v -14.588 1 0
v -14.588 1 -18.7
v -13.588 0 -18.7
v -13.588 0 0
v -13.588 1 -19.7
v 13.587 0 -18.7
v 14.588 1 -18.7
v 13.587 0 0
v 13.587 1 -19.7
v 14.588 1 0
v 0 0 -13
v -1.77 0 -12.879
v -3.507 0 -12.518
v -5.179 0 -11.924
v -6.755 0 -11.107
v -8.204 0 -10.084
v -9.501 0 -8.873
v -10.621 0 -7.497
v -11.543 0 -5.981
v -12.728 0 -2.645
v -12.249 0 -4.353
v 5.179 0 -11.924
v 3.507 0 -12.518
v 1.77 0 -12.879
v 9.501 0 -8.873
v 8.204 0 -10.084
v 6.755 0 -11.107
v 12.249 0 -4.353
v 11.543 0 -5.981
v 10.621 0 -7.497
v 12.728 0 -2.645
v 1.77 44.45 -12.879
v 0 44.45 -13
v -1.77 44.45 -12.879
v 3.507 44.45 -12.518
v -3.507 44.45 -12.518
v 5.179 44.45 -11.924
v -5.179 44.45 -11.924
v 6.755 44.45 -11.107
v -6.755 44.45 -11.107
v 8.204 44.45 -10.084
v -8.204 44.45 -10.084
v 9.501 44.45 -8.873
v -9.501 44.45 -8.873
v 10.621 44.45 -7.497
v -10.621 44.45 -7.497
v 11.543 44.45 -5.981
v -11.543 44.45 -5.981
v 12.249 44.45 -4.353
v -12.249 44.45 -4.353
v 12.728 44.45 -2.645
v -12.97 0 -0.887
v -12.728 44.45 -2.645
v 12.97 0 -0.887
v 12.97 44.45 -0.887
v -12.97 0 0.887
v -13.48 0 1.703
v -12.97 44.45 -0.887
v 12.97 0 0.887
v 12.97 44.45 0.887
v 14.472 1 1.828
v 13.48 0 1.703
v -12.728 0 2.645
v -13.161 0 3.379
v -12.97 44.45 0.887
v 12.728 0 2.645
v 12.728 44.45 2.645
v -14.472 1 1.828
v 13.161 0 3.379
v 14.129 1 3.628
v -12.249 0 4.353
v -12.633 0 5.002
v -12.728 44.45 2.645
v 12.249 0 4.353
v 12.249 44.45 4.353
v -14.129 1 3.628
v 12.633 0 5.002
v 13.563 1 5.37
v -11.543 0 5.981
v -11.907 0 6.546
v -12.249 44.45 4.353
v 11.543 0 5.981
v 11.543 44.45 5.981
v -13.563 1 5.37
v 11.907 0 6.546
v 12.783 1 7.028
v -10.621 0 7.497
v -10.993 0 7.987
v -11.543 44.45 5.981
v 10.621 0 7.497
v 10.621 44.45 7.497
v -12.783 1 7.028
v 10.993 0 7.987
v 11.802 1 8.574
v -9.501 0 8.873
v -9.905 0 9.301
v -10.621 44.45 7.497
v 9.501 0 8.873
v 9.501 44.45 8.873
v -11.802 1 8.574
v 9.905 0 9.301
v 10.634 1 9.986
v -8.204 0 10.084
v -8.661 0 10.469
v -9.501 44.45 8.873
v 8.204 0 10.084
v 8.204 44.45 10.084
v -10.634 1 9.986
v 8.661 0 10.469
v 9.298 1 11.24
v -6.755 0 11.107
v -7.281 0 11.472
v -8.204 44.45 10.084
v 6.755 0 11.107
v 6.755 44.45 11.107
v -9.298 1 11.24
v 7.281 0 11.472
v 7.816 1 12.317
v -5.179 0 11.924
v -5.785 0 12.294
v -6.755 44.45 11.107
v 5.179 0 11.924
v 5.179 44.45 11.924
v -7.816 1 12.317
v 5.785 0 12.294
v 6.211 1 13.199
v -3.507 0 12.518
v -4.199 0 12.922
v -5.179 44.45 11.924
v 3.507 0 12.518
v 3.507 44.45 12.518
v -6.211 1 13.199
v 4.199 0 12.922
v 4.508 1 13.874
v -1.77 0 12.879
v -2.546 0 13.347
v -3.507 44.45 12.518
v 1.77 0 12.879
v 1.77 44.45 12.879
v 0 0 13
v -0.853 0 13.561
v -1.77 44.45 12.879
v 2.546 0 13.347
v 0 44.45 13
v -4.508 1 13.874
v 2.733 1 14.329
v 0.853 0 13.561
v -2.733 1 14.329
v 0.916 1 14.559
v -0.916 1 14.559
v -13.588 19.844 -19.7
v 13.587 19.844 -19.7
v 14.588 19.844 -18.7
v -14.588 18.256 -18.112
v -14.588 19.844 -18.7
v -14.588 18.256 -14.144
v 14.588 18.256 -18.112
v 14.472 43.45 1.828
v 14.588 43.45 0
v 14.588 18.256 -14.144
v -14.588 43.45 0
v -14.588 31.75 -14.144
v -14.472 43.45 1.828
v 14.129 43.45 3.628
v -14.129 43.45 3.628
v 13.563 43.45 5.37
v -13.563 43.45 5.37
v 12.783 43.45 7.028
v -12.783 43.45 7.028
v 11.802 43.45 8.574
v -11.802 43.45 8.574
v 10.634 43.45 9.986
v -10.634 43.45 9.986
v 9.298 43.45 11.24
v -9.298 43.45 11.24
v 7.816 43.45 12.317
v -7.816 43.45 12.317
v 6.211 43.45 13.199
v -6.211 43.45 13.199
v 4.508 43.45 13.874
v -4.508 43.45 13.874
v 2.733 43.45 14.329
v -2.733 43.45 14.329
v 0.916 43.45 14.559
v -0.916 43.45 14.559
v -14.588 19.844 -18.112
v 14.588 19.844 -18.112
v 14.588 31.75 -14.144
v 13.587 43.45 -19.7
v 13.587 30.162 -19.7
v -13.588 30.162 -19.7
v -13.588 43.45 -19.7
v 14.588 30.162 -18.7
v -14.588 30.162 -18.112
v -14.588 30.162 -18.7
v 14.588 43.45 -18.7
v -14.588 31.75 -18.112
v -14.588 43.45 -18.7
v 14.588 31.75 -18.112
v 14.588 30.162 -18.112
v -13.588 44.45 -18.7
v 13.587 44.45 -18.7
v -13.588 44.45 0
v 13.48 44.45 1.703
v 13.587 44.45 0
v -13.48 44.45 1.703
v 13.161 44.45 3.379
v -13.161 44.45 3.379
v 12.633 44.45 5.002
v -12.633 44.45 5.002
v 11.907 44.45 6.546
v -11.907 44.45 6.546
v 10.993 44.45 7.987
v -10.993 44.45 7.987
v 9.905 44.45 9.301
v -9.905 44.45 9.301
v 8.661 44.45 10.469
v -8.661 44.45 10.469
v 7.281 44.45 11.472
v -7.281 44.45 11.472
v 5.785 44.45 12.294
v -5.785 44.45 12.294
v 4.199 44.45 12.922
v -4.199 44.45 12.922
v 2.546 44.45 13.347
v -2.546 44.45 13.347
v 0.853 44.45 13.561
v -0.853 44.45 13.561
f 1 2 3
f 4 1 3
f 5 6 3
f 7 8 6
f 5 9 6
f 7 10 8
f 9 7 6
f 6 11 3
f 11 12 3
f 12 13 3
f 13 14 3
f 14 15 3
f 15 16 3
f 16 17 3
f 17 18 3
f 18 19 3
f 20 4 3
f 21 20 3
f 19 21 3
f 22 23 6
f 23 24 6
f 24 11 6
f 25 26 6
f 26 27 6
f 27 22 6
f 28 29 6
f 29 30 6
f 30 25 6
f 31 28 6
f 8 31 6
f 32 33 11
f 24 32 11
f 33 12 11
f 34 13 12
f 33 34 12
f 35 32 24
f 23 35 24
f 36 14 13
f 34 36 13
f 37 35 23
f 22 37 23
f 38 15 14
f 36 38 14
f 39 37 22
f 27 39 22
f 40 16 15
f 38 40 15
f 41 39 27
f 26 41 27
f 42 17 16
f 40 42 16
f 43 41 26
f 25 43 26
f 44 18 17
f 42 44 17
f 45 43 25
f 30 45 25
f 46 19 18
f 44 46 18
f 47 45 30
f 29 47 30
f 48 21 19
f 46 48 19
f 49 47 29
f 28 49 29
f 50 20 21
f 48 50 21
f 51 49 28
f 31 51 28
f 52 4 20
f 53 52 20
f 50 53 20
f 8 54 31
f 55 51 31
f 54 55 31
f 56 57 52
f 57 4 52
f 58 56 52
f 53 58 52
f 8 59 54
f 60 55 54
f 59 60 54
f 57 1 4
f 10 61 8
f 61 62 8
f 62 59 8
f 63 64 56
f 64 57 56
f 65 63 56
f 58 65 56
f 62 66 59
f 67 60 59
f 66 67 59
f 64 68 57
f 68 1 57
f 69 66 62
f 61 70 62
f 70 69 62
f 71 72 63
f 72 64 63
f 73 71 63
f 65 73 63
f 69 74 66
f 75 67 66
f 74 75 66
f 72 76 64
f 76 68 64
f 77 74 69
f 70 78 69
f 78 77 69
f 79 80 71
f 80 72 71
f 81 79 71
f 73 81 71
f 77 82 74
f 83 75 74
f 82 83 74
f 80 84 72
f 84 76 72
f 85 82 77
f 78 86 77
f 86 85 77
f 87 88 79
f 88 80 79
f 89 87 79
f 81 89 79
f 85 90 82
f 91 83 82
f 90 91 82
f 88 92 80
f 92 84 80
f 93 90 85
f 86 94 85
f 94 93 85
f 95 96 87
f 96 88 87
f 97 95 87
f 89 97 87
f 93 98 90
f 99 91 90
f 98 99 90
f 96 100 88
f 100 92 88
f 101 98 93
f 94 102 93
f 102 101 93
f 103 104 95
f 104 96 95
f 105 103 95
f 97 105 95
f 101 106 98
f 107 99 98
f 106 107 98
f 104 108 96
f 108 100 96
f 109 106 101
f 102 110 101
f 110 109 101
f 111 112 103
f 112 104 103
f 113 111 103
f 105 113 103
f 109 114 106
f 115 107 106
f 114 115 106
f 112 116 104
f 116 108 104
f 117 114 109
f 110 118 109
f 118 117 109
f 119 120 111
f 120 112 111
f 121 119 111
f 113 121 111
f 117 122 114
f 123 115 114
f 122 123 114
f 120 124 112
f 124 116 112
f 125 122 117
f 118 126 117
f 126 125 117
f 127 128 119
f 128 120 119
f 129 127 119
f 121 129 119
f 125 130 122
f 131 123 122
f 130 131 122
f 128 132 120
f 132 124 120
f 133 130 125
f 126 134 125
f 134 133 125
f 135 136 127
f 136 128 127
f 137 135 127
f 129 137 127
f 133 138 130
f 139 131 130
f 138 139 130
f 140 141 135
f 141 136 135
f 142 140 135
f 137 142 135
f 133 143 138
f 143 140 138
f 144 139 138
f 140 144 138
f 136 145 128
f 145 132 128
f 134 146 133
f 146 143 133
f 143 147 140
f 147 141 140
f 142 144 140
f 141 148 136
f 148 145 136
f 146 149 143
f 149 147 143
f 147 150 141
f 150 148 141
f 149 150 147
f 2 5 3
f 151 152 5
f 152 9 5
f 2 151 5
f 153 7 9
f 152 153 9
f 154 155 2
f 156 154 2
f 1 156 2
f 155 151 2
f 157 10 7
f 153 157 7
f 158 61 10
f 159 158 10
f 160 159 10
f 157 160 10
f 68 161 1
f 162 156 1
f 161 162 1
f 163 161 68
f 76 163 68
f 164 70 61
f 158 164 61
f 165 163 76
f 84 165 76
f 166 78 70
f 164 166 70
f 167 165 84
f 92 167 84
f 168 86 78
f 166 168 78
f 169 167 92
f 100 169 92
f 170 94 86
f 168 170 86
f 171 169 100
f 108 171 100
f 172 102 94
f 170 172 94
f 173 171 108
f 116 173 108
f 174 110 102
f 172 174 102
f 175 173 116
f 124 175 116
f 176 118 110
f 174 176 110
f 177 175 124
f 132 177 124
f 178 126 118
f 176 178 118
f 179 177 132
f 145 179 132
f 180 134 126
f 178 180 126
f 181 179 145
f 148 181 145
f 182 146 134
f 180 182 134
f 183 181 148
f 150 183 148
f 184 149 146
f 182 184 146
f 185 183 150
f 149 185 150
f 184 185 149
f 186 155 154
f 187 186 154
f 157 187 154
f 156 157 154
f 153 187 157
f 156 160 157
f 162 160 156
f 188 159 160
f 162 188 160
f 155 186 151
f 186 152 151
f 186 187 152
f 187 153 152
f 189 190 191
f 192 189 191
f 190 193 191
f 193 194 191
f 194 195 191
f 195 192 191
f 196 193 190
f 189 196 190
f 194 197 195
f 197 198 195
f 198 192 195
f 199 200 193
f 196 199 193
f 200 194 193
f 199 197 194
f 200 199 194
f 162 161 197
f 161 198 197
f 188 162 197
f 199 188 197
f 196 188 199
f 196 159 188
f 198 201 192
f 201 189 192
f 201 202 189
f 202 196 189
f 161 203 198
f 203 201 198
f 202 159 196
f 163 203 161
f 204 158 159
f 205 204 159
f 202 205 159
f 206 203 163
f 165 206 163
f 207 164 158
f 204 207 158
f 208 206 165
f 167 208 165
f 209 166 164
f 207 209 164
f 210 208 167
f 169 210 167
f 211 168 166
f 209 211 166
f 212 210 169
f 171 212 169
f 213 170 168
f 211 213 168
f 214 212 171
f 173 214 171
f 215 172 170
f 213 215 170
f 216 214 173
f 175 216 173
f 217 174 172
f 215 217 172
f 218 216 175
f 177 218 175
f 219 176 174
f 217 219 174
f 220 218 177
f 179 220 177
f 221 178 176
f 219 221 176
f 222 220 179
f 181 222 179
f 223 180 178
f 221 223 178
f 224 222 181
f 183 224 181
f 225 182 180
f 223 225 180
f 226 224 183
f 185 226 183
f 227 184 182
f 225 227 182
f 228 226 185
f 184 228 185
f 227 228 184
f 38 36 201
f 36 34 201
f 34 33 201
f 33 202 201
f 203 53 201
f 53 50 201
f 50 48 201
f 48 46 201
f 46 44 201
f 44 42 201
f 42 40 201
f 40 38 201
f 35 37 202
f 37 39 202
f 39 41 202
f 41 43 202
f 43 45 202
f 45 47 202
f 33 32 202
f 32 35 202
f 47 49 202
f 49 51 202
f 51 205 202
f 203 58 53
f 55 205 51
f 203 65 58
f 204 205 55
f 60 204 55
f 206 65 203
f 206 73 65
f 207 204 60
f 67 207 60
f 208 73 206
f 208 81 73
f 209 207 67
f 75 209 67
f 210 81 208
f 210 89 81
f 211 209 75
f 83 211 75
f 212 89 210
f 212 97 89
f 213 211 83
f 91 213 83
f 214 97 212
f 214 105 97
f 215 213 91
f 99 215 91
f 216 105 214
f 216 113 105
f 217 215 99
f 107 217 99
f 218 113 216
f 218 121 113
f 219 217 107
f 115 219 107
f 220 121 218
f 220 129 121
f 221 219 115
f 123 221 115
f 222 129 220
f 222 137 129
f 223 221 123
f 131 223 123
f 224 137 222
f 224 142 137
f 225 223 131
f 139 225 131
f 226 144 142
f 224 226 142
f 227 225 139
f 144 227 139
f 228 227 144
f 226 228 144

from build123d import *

# Parameters (mm, degrees)
SKETCH1_R           = 13
BOSS_EXTRUDE1_DEPTH = 44.45
CUT_EXTRUDE1_DEPTH  = 30.175
CHAMFER1_SIZE       = 1


with BuildPart() as part:
    # Sketch1 → Boss-Extrude1 (new body)
    with BuildSketch(Plane(origin=(0, 0, 0), x_dir=(1, 0, 0), z_dir=(0, 1, 0))):
        with BuildLine():
            Line((-14.5875, 0), (-14.5875, 19.7))
            Line((-14.5875, 19.7), (14.5875, 19.7))
            Line((14.5875, 19.7), (14.5875, 0))
            ThreePointArc((14.5875, 0), (0, -14.5875), (-14.5875, 0))
        make_face()
        Circle(SKETCH1_R, mode=Mode.SUBTRACT)
    extrude(amount=BOSS_EXTRUDE1_DEPTH)

    # Sketch3 → Cut-Extrude1 (cut, through all)
    with BuildSketch(Plane(origin=(14.5875, 0, 0), x_dir=(0, 0, -1), z_dir=(1, 0, 0))):
        Polygon((19.7, 30.1625), (18.1125, 30.1625), (18.1125, 31.75), (14.14375, 31.75), (14.14375, 18.25625), (18.1125, 18.25625), (18.1125, 19.84375), (19.7, 19.84375), align=None)
    extrude(amount=-CUT_EXTRUDE1_DEPTH, mode=Mode.SUBTRACT)

    # Chamfer1
    chamfer1_edges = [part.edges().sort_by_distance(p)[0] for p in [
        (0, 44.45, -19.7),
        (-14.5875, 44.45, -9.85),
        (-14.5875, 9.921875, -19.7),
        (14.5875, 9.921875, -19.7),
        (0, 44.45, 14.5875),
        (-14.5875, 0, -9.85),
        (0, 0, -19.7),
        (14.5875, 0, -9.85),
        (0, 0, 14.5875),
        (14.5875, 44.45, -9.85),
        (-14.5875, 37.30625, -19.7),
        (14.5875, 37.30625, -19.7),
    ]]
    chamfer(chamfer1_edges, length=CHAMFER1_SIZE)


solid = part.part
